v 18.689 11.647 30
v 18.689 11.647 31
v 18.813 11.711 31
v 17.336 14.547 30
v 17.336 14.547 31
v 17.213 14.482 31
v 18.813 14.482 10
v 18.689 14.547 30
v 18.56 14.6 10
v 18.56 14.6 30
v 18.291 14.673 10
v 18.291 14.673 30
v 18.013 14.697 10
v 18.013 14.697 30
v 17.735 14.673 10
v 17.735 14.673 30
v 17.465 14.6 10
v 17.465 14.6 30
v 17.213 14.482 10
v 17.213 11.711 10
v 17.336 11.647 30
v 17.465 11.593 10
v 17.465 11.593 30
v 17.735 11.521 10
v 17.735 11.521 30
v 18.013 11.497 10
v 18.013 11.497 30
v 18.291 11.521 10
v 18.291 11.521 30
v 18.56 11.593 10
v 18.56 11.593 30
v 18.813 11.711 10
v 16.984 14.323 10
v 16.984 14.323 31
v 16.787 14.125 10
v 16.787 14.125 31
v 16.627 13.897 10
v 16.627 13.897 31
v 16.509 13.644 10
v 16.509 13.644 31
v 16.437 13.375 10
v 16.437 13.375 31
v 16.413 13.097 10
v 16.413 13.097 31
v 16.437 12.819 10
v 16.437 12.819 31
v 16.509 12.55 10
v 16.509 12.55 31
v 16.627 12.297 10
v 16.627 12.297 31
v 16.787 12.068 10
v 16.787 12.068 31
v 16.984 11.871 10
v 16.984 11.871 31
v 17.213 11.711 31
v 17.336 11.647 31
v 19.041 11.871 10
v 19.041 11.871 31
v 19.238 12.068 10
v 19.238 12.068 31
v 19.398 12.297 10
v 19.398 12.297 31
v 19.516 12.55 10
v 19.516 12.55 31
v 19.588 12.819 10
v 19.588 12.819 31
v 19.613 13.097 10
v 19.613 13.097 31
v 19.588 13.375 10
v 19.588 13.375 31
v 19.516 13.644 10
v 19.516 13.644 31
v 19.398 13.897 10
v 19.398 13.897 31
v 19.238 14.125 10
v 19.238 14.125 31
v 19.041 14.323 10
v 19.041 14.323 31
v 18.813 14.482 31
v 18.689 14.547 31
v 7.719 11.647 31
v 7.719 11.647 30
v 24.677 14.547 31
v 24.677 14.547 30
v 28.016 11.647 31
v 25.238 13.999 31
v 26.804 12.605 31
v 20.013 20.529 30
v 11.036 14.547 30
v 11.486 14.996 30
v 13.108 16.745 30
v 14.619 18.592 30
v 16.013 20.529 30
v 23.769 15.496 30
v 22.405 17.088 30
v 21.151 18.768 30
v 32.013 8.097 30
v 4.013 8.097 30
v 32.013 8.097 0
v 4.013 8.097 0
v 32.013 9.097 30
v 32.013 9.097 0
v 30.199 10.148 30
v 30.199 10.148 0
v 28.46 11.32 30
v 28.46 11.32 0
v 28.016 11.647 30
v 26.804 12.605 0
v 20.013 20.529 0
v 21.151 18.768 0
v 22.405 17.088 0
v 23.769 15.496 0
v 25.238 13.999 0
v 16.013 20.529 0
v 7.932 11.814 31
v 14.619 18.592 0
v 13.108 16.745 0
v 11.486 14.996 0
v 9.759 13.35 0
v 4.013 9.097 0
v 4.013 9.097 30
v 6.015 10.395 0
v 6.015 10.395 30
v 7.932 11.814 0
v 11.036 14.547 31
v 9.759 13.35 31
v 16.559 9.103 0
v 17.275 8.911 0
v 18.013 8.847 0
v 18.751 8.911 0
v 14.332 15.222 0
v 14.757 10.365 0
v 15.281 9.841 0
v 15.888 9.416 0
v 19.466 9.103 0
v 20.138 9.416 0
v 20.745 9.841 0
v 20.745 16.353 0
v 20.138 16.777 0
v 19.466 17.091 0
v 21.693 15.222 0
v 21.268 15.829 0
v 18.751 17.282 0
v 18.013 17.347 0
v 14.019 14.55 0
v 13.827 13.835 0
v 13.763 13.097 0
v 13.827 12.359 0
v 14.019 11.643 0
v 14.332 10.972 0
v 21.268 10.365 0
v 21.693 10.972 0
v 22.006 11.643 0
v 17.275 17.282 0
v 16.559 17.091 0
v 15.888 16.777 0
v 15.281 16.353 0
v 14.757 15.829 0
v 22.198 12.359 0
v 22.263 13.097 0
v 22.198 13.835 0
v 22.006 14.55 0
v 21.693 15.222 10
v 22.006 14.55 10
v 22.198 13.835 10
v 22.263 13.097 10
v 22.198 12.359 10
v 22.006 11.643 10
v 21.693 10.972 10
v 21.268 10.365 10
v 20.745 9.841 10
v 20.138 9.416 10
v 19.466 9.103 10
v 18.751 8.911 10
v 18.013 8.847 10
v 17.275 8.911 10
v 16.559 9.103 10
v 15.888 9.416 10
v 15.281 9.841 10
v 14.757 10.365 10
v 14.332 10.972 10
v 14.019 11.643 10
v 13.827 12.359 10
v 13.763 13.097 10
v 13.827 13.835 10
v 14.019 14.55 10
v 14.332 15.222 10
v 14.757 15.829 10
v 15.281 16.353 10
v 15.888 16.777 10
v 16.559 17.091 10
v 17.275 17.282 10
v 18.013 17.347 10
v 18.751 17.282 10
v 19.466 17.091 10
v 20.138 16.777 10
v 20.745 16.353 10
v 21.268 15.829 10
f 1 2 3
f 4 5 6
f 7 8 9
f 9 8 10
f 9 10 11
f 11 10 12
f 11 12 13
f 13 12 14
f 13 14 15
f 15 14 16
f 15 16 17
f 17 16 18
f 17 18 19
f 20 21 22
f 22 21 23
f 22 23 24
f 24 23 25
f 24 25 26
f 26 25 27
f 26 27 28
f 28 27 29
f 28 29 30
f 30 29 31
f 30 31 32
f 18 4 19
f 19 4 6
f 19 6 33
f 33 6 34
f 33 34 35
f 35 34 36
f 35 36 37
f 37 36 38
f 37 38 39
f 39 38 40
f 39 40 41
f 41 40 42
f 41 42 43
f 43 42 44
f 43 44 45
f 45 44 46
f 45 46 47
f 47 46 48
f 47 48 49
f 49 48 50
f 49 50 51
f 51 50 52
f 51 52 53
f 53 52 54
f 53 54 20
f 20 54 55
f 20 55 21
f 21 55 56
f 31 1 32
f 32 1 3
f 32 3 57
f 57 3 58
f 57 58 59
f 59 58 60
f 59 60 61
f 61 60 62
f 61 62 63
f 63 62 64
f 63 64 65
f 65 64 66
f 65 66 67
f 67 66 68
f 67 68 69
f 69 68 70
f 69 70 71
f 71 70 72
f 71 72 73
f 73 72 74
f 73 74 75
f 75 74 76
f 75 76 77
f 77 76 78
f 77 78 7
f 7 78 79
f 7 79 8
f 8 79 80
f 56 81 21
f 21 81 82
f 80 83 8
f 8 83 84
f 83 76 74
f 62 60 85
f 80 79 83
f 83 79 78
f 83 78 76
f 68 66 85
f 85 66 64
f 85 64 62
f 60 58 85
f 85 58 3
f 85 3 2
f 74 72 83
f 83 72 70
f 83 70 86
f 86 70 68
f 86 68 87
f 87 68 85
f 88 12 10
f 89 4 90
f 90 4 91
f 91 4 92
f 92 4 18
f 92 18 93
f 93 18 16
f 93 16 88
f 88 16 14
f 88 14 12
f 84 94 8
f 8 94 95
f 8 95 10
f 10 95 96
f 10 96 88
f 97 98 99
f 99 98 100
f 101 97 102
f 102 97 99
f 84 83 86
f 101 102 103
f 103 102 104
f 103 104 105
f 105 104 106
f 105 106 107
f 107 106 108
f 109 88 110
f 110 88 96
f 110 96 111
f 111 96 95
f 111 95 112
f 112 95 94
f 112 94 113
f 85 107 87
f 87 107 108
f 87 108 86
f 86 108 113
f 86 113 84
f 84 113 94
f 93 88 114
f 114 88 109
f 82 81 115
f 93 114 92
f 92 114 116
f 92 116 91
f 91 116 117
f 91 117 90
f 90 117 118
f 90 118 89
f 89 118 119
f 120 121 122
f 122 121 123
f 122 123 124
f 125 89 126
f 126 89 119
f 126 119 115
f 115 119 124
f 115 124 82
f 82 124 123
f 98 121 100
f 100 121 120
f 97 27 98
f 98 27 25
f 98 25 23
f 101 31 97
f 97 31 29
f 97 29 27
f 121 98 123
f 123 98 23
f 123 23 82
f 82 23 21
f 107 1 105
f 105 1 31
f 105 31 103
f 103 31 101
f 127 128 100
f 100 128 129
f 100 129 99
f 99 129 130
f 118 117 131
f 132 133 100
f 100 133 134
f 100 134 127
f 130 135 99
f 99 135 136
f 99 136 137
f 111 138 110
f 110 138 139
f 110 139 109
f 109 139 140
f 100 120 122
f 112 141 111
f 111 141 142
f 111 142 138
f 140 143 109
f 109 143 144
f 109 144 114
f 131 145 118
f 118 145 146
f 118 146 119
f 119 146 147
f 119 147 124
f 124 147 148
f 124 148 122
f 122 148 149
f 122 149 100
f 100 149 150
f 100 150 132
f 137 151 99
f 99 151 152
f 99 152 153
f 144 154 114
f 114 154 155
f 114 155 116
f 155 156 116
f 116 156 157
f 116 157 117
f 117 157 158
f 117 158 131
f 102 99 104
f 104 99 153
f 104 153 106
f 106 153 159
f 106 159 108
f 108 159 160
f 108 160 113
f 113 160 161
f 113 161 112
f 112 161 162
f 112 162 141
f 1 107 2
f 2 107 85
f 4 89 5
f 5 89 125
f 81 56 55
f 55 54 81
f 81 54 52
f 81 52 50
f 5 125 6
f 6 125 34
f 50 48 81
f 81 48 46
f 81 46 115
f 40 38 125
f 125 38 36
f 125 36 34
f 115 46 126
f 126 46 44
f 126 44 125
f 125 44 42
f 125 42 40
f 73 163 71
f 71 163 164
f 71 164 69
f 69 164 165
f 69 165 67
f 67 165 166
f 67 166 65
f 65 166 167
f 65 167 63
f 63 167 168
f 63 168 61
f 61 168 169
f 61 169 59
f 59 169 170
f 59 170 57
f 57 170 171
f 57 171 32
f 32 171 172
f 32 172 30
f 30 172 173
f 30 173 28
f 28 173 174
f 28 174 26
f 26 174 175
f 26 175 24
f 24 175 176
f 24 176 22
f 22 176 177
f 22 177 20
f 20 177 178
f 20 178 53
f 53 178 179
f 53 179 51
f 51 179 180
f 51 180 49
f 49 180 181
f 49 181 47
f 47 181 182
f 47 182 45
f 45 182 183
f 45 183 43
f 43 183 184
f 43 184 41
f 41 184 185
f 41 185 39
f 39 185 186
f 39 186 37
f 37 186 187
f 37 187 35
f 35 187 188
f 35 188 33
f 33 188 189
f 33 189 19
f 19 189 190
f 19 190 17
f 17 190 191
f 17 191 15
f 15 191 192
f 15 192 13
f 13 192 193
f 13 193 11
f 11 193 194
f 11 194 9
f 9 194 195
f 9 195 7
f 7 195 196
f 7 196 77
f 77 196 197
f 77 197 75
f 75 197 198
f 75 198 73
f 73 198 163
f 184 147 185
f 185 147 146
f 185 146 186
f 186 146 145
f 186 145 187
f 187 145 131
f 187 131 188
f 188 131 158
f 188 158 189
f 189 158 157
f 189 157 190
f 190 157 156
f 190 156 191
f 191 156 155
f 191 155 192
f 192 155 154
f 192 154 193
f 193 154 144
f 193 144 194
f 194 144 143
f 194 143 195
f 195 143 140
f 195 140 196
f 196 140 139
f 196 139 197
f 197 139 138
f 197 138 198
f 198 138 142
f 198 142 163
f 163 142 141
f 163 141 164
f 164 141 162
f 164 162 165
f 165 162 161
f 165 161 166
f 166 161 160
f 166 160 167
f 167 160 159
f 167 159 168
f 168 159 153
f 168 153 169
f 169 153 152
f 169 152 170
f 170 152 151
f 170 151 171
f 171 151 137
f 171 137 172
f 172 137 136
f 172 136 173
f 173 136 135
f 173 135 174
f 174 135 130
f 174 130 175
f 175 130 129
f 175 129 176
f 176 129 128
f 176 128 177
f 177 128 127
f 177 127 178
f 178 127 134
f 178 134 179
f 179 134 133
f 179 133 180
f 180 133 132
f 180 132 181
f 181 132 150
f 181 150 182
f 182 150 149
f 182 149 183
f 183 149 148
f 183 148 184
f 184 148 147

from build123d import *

# Parameters (mm, degrees)
MAIN_DEPTH        = 30
FIX_2_DEPTH       = 1
SKETCH4_R         = 1.6
FIXHOLE_DEPTH     = 32
SKETCH6_R         = 4.25
FIXTOOLHOLE_DEPTH = 10


with BuildPart() as part:
    # Sketch1 → Main (new body)
    with BuildSketch(Plane.XY):
        with BuildLine():
            Line((4.012678164, 8.096844755), (4.012678164, 9.096844755))
            ThreePointArc((4.012678164, 9.096844755), (10.635131042, 14.159397508), (16.012678164, 20.528723174))
            Line((16.012678164, 20.528723174), (20.012678164, 20.528723174))
            ThreePointArc((20.012678164, 20.528723174), (25.237773803, 13.999369756), (32.012678164, 9.096844755))
            Line((32.012678164, 9.096844755), (32.012678164, 8.096844755))
            Line((32.012678164, 8.096844755), (4.012678164, 8.096844755))
        make_face()
    extrude(amount=MAIN_DEPTH)

    # Sketch5 → Fix 2 (add)
    with BuildSketch(Plane.XY.offset(30)):
        with BuildLine():
            Line((11.035981199, 14.546844755), (24.677385704, 14.546844755))
            ThreePointArc((24.677385704, 14.546844755), (26.295048181, 13.037479939), (28.015846782, 11.646844755))
            Line((28.015846782, 11.646844755), (7.71870745, 11.646844755))
            ThreePointArc((7.71870745, 11.646844755), (9.418864977, 13.0493498), (11.035981199, 14.546844755))
        make_face()
    extrude(amount=FIX_2_DEPTH)

    # Sketch4 → FixHole (cut, through all)
    with BuildSketch(Plane.XY.offset(31)):
        with Locations((18.012678164, 13.096844755)):
            Circle(SKETCH4_R)
    extrude(amount=-FIXHOLE_DEPTH, mode=Mode.SUBTRACT)

    # Sketch6 → FixToolHole (cut)
    with BuildSketch(Plane(origin=(0, 0, 0), x_dir=(-1, 0, 0), z_dir=(0, 0, -1))):
        with Locations((-18.012678164, 13.096844755)):
            Circle(SKETCH6_R)
    extrude(amount=-FIXTOOLHOLE_DEPTH, mode=Mode.SUBTRACT)


solid = part.part
